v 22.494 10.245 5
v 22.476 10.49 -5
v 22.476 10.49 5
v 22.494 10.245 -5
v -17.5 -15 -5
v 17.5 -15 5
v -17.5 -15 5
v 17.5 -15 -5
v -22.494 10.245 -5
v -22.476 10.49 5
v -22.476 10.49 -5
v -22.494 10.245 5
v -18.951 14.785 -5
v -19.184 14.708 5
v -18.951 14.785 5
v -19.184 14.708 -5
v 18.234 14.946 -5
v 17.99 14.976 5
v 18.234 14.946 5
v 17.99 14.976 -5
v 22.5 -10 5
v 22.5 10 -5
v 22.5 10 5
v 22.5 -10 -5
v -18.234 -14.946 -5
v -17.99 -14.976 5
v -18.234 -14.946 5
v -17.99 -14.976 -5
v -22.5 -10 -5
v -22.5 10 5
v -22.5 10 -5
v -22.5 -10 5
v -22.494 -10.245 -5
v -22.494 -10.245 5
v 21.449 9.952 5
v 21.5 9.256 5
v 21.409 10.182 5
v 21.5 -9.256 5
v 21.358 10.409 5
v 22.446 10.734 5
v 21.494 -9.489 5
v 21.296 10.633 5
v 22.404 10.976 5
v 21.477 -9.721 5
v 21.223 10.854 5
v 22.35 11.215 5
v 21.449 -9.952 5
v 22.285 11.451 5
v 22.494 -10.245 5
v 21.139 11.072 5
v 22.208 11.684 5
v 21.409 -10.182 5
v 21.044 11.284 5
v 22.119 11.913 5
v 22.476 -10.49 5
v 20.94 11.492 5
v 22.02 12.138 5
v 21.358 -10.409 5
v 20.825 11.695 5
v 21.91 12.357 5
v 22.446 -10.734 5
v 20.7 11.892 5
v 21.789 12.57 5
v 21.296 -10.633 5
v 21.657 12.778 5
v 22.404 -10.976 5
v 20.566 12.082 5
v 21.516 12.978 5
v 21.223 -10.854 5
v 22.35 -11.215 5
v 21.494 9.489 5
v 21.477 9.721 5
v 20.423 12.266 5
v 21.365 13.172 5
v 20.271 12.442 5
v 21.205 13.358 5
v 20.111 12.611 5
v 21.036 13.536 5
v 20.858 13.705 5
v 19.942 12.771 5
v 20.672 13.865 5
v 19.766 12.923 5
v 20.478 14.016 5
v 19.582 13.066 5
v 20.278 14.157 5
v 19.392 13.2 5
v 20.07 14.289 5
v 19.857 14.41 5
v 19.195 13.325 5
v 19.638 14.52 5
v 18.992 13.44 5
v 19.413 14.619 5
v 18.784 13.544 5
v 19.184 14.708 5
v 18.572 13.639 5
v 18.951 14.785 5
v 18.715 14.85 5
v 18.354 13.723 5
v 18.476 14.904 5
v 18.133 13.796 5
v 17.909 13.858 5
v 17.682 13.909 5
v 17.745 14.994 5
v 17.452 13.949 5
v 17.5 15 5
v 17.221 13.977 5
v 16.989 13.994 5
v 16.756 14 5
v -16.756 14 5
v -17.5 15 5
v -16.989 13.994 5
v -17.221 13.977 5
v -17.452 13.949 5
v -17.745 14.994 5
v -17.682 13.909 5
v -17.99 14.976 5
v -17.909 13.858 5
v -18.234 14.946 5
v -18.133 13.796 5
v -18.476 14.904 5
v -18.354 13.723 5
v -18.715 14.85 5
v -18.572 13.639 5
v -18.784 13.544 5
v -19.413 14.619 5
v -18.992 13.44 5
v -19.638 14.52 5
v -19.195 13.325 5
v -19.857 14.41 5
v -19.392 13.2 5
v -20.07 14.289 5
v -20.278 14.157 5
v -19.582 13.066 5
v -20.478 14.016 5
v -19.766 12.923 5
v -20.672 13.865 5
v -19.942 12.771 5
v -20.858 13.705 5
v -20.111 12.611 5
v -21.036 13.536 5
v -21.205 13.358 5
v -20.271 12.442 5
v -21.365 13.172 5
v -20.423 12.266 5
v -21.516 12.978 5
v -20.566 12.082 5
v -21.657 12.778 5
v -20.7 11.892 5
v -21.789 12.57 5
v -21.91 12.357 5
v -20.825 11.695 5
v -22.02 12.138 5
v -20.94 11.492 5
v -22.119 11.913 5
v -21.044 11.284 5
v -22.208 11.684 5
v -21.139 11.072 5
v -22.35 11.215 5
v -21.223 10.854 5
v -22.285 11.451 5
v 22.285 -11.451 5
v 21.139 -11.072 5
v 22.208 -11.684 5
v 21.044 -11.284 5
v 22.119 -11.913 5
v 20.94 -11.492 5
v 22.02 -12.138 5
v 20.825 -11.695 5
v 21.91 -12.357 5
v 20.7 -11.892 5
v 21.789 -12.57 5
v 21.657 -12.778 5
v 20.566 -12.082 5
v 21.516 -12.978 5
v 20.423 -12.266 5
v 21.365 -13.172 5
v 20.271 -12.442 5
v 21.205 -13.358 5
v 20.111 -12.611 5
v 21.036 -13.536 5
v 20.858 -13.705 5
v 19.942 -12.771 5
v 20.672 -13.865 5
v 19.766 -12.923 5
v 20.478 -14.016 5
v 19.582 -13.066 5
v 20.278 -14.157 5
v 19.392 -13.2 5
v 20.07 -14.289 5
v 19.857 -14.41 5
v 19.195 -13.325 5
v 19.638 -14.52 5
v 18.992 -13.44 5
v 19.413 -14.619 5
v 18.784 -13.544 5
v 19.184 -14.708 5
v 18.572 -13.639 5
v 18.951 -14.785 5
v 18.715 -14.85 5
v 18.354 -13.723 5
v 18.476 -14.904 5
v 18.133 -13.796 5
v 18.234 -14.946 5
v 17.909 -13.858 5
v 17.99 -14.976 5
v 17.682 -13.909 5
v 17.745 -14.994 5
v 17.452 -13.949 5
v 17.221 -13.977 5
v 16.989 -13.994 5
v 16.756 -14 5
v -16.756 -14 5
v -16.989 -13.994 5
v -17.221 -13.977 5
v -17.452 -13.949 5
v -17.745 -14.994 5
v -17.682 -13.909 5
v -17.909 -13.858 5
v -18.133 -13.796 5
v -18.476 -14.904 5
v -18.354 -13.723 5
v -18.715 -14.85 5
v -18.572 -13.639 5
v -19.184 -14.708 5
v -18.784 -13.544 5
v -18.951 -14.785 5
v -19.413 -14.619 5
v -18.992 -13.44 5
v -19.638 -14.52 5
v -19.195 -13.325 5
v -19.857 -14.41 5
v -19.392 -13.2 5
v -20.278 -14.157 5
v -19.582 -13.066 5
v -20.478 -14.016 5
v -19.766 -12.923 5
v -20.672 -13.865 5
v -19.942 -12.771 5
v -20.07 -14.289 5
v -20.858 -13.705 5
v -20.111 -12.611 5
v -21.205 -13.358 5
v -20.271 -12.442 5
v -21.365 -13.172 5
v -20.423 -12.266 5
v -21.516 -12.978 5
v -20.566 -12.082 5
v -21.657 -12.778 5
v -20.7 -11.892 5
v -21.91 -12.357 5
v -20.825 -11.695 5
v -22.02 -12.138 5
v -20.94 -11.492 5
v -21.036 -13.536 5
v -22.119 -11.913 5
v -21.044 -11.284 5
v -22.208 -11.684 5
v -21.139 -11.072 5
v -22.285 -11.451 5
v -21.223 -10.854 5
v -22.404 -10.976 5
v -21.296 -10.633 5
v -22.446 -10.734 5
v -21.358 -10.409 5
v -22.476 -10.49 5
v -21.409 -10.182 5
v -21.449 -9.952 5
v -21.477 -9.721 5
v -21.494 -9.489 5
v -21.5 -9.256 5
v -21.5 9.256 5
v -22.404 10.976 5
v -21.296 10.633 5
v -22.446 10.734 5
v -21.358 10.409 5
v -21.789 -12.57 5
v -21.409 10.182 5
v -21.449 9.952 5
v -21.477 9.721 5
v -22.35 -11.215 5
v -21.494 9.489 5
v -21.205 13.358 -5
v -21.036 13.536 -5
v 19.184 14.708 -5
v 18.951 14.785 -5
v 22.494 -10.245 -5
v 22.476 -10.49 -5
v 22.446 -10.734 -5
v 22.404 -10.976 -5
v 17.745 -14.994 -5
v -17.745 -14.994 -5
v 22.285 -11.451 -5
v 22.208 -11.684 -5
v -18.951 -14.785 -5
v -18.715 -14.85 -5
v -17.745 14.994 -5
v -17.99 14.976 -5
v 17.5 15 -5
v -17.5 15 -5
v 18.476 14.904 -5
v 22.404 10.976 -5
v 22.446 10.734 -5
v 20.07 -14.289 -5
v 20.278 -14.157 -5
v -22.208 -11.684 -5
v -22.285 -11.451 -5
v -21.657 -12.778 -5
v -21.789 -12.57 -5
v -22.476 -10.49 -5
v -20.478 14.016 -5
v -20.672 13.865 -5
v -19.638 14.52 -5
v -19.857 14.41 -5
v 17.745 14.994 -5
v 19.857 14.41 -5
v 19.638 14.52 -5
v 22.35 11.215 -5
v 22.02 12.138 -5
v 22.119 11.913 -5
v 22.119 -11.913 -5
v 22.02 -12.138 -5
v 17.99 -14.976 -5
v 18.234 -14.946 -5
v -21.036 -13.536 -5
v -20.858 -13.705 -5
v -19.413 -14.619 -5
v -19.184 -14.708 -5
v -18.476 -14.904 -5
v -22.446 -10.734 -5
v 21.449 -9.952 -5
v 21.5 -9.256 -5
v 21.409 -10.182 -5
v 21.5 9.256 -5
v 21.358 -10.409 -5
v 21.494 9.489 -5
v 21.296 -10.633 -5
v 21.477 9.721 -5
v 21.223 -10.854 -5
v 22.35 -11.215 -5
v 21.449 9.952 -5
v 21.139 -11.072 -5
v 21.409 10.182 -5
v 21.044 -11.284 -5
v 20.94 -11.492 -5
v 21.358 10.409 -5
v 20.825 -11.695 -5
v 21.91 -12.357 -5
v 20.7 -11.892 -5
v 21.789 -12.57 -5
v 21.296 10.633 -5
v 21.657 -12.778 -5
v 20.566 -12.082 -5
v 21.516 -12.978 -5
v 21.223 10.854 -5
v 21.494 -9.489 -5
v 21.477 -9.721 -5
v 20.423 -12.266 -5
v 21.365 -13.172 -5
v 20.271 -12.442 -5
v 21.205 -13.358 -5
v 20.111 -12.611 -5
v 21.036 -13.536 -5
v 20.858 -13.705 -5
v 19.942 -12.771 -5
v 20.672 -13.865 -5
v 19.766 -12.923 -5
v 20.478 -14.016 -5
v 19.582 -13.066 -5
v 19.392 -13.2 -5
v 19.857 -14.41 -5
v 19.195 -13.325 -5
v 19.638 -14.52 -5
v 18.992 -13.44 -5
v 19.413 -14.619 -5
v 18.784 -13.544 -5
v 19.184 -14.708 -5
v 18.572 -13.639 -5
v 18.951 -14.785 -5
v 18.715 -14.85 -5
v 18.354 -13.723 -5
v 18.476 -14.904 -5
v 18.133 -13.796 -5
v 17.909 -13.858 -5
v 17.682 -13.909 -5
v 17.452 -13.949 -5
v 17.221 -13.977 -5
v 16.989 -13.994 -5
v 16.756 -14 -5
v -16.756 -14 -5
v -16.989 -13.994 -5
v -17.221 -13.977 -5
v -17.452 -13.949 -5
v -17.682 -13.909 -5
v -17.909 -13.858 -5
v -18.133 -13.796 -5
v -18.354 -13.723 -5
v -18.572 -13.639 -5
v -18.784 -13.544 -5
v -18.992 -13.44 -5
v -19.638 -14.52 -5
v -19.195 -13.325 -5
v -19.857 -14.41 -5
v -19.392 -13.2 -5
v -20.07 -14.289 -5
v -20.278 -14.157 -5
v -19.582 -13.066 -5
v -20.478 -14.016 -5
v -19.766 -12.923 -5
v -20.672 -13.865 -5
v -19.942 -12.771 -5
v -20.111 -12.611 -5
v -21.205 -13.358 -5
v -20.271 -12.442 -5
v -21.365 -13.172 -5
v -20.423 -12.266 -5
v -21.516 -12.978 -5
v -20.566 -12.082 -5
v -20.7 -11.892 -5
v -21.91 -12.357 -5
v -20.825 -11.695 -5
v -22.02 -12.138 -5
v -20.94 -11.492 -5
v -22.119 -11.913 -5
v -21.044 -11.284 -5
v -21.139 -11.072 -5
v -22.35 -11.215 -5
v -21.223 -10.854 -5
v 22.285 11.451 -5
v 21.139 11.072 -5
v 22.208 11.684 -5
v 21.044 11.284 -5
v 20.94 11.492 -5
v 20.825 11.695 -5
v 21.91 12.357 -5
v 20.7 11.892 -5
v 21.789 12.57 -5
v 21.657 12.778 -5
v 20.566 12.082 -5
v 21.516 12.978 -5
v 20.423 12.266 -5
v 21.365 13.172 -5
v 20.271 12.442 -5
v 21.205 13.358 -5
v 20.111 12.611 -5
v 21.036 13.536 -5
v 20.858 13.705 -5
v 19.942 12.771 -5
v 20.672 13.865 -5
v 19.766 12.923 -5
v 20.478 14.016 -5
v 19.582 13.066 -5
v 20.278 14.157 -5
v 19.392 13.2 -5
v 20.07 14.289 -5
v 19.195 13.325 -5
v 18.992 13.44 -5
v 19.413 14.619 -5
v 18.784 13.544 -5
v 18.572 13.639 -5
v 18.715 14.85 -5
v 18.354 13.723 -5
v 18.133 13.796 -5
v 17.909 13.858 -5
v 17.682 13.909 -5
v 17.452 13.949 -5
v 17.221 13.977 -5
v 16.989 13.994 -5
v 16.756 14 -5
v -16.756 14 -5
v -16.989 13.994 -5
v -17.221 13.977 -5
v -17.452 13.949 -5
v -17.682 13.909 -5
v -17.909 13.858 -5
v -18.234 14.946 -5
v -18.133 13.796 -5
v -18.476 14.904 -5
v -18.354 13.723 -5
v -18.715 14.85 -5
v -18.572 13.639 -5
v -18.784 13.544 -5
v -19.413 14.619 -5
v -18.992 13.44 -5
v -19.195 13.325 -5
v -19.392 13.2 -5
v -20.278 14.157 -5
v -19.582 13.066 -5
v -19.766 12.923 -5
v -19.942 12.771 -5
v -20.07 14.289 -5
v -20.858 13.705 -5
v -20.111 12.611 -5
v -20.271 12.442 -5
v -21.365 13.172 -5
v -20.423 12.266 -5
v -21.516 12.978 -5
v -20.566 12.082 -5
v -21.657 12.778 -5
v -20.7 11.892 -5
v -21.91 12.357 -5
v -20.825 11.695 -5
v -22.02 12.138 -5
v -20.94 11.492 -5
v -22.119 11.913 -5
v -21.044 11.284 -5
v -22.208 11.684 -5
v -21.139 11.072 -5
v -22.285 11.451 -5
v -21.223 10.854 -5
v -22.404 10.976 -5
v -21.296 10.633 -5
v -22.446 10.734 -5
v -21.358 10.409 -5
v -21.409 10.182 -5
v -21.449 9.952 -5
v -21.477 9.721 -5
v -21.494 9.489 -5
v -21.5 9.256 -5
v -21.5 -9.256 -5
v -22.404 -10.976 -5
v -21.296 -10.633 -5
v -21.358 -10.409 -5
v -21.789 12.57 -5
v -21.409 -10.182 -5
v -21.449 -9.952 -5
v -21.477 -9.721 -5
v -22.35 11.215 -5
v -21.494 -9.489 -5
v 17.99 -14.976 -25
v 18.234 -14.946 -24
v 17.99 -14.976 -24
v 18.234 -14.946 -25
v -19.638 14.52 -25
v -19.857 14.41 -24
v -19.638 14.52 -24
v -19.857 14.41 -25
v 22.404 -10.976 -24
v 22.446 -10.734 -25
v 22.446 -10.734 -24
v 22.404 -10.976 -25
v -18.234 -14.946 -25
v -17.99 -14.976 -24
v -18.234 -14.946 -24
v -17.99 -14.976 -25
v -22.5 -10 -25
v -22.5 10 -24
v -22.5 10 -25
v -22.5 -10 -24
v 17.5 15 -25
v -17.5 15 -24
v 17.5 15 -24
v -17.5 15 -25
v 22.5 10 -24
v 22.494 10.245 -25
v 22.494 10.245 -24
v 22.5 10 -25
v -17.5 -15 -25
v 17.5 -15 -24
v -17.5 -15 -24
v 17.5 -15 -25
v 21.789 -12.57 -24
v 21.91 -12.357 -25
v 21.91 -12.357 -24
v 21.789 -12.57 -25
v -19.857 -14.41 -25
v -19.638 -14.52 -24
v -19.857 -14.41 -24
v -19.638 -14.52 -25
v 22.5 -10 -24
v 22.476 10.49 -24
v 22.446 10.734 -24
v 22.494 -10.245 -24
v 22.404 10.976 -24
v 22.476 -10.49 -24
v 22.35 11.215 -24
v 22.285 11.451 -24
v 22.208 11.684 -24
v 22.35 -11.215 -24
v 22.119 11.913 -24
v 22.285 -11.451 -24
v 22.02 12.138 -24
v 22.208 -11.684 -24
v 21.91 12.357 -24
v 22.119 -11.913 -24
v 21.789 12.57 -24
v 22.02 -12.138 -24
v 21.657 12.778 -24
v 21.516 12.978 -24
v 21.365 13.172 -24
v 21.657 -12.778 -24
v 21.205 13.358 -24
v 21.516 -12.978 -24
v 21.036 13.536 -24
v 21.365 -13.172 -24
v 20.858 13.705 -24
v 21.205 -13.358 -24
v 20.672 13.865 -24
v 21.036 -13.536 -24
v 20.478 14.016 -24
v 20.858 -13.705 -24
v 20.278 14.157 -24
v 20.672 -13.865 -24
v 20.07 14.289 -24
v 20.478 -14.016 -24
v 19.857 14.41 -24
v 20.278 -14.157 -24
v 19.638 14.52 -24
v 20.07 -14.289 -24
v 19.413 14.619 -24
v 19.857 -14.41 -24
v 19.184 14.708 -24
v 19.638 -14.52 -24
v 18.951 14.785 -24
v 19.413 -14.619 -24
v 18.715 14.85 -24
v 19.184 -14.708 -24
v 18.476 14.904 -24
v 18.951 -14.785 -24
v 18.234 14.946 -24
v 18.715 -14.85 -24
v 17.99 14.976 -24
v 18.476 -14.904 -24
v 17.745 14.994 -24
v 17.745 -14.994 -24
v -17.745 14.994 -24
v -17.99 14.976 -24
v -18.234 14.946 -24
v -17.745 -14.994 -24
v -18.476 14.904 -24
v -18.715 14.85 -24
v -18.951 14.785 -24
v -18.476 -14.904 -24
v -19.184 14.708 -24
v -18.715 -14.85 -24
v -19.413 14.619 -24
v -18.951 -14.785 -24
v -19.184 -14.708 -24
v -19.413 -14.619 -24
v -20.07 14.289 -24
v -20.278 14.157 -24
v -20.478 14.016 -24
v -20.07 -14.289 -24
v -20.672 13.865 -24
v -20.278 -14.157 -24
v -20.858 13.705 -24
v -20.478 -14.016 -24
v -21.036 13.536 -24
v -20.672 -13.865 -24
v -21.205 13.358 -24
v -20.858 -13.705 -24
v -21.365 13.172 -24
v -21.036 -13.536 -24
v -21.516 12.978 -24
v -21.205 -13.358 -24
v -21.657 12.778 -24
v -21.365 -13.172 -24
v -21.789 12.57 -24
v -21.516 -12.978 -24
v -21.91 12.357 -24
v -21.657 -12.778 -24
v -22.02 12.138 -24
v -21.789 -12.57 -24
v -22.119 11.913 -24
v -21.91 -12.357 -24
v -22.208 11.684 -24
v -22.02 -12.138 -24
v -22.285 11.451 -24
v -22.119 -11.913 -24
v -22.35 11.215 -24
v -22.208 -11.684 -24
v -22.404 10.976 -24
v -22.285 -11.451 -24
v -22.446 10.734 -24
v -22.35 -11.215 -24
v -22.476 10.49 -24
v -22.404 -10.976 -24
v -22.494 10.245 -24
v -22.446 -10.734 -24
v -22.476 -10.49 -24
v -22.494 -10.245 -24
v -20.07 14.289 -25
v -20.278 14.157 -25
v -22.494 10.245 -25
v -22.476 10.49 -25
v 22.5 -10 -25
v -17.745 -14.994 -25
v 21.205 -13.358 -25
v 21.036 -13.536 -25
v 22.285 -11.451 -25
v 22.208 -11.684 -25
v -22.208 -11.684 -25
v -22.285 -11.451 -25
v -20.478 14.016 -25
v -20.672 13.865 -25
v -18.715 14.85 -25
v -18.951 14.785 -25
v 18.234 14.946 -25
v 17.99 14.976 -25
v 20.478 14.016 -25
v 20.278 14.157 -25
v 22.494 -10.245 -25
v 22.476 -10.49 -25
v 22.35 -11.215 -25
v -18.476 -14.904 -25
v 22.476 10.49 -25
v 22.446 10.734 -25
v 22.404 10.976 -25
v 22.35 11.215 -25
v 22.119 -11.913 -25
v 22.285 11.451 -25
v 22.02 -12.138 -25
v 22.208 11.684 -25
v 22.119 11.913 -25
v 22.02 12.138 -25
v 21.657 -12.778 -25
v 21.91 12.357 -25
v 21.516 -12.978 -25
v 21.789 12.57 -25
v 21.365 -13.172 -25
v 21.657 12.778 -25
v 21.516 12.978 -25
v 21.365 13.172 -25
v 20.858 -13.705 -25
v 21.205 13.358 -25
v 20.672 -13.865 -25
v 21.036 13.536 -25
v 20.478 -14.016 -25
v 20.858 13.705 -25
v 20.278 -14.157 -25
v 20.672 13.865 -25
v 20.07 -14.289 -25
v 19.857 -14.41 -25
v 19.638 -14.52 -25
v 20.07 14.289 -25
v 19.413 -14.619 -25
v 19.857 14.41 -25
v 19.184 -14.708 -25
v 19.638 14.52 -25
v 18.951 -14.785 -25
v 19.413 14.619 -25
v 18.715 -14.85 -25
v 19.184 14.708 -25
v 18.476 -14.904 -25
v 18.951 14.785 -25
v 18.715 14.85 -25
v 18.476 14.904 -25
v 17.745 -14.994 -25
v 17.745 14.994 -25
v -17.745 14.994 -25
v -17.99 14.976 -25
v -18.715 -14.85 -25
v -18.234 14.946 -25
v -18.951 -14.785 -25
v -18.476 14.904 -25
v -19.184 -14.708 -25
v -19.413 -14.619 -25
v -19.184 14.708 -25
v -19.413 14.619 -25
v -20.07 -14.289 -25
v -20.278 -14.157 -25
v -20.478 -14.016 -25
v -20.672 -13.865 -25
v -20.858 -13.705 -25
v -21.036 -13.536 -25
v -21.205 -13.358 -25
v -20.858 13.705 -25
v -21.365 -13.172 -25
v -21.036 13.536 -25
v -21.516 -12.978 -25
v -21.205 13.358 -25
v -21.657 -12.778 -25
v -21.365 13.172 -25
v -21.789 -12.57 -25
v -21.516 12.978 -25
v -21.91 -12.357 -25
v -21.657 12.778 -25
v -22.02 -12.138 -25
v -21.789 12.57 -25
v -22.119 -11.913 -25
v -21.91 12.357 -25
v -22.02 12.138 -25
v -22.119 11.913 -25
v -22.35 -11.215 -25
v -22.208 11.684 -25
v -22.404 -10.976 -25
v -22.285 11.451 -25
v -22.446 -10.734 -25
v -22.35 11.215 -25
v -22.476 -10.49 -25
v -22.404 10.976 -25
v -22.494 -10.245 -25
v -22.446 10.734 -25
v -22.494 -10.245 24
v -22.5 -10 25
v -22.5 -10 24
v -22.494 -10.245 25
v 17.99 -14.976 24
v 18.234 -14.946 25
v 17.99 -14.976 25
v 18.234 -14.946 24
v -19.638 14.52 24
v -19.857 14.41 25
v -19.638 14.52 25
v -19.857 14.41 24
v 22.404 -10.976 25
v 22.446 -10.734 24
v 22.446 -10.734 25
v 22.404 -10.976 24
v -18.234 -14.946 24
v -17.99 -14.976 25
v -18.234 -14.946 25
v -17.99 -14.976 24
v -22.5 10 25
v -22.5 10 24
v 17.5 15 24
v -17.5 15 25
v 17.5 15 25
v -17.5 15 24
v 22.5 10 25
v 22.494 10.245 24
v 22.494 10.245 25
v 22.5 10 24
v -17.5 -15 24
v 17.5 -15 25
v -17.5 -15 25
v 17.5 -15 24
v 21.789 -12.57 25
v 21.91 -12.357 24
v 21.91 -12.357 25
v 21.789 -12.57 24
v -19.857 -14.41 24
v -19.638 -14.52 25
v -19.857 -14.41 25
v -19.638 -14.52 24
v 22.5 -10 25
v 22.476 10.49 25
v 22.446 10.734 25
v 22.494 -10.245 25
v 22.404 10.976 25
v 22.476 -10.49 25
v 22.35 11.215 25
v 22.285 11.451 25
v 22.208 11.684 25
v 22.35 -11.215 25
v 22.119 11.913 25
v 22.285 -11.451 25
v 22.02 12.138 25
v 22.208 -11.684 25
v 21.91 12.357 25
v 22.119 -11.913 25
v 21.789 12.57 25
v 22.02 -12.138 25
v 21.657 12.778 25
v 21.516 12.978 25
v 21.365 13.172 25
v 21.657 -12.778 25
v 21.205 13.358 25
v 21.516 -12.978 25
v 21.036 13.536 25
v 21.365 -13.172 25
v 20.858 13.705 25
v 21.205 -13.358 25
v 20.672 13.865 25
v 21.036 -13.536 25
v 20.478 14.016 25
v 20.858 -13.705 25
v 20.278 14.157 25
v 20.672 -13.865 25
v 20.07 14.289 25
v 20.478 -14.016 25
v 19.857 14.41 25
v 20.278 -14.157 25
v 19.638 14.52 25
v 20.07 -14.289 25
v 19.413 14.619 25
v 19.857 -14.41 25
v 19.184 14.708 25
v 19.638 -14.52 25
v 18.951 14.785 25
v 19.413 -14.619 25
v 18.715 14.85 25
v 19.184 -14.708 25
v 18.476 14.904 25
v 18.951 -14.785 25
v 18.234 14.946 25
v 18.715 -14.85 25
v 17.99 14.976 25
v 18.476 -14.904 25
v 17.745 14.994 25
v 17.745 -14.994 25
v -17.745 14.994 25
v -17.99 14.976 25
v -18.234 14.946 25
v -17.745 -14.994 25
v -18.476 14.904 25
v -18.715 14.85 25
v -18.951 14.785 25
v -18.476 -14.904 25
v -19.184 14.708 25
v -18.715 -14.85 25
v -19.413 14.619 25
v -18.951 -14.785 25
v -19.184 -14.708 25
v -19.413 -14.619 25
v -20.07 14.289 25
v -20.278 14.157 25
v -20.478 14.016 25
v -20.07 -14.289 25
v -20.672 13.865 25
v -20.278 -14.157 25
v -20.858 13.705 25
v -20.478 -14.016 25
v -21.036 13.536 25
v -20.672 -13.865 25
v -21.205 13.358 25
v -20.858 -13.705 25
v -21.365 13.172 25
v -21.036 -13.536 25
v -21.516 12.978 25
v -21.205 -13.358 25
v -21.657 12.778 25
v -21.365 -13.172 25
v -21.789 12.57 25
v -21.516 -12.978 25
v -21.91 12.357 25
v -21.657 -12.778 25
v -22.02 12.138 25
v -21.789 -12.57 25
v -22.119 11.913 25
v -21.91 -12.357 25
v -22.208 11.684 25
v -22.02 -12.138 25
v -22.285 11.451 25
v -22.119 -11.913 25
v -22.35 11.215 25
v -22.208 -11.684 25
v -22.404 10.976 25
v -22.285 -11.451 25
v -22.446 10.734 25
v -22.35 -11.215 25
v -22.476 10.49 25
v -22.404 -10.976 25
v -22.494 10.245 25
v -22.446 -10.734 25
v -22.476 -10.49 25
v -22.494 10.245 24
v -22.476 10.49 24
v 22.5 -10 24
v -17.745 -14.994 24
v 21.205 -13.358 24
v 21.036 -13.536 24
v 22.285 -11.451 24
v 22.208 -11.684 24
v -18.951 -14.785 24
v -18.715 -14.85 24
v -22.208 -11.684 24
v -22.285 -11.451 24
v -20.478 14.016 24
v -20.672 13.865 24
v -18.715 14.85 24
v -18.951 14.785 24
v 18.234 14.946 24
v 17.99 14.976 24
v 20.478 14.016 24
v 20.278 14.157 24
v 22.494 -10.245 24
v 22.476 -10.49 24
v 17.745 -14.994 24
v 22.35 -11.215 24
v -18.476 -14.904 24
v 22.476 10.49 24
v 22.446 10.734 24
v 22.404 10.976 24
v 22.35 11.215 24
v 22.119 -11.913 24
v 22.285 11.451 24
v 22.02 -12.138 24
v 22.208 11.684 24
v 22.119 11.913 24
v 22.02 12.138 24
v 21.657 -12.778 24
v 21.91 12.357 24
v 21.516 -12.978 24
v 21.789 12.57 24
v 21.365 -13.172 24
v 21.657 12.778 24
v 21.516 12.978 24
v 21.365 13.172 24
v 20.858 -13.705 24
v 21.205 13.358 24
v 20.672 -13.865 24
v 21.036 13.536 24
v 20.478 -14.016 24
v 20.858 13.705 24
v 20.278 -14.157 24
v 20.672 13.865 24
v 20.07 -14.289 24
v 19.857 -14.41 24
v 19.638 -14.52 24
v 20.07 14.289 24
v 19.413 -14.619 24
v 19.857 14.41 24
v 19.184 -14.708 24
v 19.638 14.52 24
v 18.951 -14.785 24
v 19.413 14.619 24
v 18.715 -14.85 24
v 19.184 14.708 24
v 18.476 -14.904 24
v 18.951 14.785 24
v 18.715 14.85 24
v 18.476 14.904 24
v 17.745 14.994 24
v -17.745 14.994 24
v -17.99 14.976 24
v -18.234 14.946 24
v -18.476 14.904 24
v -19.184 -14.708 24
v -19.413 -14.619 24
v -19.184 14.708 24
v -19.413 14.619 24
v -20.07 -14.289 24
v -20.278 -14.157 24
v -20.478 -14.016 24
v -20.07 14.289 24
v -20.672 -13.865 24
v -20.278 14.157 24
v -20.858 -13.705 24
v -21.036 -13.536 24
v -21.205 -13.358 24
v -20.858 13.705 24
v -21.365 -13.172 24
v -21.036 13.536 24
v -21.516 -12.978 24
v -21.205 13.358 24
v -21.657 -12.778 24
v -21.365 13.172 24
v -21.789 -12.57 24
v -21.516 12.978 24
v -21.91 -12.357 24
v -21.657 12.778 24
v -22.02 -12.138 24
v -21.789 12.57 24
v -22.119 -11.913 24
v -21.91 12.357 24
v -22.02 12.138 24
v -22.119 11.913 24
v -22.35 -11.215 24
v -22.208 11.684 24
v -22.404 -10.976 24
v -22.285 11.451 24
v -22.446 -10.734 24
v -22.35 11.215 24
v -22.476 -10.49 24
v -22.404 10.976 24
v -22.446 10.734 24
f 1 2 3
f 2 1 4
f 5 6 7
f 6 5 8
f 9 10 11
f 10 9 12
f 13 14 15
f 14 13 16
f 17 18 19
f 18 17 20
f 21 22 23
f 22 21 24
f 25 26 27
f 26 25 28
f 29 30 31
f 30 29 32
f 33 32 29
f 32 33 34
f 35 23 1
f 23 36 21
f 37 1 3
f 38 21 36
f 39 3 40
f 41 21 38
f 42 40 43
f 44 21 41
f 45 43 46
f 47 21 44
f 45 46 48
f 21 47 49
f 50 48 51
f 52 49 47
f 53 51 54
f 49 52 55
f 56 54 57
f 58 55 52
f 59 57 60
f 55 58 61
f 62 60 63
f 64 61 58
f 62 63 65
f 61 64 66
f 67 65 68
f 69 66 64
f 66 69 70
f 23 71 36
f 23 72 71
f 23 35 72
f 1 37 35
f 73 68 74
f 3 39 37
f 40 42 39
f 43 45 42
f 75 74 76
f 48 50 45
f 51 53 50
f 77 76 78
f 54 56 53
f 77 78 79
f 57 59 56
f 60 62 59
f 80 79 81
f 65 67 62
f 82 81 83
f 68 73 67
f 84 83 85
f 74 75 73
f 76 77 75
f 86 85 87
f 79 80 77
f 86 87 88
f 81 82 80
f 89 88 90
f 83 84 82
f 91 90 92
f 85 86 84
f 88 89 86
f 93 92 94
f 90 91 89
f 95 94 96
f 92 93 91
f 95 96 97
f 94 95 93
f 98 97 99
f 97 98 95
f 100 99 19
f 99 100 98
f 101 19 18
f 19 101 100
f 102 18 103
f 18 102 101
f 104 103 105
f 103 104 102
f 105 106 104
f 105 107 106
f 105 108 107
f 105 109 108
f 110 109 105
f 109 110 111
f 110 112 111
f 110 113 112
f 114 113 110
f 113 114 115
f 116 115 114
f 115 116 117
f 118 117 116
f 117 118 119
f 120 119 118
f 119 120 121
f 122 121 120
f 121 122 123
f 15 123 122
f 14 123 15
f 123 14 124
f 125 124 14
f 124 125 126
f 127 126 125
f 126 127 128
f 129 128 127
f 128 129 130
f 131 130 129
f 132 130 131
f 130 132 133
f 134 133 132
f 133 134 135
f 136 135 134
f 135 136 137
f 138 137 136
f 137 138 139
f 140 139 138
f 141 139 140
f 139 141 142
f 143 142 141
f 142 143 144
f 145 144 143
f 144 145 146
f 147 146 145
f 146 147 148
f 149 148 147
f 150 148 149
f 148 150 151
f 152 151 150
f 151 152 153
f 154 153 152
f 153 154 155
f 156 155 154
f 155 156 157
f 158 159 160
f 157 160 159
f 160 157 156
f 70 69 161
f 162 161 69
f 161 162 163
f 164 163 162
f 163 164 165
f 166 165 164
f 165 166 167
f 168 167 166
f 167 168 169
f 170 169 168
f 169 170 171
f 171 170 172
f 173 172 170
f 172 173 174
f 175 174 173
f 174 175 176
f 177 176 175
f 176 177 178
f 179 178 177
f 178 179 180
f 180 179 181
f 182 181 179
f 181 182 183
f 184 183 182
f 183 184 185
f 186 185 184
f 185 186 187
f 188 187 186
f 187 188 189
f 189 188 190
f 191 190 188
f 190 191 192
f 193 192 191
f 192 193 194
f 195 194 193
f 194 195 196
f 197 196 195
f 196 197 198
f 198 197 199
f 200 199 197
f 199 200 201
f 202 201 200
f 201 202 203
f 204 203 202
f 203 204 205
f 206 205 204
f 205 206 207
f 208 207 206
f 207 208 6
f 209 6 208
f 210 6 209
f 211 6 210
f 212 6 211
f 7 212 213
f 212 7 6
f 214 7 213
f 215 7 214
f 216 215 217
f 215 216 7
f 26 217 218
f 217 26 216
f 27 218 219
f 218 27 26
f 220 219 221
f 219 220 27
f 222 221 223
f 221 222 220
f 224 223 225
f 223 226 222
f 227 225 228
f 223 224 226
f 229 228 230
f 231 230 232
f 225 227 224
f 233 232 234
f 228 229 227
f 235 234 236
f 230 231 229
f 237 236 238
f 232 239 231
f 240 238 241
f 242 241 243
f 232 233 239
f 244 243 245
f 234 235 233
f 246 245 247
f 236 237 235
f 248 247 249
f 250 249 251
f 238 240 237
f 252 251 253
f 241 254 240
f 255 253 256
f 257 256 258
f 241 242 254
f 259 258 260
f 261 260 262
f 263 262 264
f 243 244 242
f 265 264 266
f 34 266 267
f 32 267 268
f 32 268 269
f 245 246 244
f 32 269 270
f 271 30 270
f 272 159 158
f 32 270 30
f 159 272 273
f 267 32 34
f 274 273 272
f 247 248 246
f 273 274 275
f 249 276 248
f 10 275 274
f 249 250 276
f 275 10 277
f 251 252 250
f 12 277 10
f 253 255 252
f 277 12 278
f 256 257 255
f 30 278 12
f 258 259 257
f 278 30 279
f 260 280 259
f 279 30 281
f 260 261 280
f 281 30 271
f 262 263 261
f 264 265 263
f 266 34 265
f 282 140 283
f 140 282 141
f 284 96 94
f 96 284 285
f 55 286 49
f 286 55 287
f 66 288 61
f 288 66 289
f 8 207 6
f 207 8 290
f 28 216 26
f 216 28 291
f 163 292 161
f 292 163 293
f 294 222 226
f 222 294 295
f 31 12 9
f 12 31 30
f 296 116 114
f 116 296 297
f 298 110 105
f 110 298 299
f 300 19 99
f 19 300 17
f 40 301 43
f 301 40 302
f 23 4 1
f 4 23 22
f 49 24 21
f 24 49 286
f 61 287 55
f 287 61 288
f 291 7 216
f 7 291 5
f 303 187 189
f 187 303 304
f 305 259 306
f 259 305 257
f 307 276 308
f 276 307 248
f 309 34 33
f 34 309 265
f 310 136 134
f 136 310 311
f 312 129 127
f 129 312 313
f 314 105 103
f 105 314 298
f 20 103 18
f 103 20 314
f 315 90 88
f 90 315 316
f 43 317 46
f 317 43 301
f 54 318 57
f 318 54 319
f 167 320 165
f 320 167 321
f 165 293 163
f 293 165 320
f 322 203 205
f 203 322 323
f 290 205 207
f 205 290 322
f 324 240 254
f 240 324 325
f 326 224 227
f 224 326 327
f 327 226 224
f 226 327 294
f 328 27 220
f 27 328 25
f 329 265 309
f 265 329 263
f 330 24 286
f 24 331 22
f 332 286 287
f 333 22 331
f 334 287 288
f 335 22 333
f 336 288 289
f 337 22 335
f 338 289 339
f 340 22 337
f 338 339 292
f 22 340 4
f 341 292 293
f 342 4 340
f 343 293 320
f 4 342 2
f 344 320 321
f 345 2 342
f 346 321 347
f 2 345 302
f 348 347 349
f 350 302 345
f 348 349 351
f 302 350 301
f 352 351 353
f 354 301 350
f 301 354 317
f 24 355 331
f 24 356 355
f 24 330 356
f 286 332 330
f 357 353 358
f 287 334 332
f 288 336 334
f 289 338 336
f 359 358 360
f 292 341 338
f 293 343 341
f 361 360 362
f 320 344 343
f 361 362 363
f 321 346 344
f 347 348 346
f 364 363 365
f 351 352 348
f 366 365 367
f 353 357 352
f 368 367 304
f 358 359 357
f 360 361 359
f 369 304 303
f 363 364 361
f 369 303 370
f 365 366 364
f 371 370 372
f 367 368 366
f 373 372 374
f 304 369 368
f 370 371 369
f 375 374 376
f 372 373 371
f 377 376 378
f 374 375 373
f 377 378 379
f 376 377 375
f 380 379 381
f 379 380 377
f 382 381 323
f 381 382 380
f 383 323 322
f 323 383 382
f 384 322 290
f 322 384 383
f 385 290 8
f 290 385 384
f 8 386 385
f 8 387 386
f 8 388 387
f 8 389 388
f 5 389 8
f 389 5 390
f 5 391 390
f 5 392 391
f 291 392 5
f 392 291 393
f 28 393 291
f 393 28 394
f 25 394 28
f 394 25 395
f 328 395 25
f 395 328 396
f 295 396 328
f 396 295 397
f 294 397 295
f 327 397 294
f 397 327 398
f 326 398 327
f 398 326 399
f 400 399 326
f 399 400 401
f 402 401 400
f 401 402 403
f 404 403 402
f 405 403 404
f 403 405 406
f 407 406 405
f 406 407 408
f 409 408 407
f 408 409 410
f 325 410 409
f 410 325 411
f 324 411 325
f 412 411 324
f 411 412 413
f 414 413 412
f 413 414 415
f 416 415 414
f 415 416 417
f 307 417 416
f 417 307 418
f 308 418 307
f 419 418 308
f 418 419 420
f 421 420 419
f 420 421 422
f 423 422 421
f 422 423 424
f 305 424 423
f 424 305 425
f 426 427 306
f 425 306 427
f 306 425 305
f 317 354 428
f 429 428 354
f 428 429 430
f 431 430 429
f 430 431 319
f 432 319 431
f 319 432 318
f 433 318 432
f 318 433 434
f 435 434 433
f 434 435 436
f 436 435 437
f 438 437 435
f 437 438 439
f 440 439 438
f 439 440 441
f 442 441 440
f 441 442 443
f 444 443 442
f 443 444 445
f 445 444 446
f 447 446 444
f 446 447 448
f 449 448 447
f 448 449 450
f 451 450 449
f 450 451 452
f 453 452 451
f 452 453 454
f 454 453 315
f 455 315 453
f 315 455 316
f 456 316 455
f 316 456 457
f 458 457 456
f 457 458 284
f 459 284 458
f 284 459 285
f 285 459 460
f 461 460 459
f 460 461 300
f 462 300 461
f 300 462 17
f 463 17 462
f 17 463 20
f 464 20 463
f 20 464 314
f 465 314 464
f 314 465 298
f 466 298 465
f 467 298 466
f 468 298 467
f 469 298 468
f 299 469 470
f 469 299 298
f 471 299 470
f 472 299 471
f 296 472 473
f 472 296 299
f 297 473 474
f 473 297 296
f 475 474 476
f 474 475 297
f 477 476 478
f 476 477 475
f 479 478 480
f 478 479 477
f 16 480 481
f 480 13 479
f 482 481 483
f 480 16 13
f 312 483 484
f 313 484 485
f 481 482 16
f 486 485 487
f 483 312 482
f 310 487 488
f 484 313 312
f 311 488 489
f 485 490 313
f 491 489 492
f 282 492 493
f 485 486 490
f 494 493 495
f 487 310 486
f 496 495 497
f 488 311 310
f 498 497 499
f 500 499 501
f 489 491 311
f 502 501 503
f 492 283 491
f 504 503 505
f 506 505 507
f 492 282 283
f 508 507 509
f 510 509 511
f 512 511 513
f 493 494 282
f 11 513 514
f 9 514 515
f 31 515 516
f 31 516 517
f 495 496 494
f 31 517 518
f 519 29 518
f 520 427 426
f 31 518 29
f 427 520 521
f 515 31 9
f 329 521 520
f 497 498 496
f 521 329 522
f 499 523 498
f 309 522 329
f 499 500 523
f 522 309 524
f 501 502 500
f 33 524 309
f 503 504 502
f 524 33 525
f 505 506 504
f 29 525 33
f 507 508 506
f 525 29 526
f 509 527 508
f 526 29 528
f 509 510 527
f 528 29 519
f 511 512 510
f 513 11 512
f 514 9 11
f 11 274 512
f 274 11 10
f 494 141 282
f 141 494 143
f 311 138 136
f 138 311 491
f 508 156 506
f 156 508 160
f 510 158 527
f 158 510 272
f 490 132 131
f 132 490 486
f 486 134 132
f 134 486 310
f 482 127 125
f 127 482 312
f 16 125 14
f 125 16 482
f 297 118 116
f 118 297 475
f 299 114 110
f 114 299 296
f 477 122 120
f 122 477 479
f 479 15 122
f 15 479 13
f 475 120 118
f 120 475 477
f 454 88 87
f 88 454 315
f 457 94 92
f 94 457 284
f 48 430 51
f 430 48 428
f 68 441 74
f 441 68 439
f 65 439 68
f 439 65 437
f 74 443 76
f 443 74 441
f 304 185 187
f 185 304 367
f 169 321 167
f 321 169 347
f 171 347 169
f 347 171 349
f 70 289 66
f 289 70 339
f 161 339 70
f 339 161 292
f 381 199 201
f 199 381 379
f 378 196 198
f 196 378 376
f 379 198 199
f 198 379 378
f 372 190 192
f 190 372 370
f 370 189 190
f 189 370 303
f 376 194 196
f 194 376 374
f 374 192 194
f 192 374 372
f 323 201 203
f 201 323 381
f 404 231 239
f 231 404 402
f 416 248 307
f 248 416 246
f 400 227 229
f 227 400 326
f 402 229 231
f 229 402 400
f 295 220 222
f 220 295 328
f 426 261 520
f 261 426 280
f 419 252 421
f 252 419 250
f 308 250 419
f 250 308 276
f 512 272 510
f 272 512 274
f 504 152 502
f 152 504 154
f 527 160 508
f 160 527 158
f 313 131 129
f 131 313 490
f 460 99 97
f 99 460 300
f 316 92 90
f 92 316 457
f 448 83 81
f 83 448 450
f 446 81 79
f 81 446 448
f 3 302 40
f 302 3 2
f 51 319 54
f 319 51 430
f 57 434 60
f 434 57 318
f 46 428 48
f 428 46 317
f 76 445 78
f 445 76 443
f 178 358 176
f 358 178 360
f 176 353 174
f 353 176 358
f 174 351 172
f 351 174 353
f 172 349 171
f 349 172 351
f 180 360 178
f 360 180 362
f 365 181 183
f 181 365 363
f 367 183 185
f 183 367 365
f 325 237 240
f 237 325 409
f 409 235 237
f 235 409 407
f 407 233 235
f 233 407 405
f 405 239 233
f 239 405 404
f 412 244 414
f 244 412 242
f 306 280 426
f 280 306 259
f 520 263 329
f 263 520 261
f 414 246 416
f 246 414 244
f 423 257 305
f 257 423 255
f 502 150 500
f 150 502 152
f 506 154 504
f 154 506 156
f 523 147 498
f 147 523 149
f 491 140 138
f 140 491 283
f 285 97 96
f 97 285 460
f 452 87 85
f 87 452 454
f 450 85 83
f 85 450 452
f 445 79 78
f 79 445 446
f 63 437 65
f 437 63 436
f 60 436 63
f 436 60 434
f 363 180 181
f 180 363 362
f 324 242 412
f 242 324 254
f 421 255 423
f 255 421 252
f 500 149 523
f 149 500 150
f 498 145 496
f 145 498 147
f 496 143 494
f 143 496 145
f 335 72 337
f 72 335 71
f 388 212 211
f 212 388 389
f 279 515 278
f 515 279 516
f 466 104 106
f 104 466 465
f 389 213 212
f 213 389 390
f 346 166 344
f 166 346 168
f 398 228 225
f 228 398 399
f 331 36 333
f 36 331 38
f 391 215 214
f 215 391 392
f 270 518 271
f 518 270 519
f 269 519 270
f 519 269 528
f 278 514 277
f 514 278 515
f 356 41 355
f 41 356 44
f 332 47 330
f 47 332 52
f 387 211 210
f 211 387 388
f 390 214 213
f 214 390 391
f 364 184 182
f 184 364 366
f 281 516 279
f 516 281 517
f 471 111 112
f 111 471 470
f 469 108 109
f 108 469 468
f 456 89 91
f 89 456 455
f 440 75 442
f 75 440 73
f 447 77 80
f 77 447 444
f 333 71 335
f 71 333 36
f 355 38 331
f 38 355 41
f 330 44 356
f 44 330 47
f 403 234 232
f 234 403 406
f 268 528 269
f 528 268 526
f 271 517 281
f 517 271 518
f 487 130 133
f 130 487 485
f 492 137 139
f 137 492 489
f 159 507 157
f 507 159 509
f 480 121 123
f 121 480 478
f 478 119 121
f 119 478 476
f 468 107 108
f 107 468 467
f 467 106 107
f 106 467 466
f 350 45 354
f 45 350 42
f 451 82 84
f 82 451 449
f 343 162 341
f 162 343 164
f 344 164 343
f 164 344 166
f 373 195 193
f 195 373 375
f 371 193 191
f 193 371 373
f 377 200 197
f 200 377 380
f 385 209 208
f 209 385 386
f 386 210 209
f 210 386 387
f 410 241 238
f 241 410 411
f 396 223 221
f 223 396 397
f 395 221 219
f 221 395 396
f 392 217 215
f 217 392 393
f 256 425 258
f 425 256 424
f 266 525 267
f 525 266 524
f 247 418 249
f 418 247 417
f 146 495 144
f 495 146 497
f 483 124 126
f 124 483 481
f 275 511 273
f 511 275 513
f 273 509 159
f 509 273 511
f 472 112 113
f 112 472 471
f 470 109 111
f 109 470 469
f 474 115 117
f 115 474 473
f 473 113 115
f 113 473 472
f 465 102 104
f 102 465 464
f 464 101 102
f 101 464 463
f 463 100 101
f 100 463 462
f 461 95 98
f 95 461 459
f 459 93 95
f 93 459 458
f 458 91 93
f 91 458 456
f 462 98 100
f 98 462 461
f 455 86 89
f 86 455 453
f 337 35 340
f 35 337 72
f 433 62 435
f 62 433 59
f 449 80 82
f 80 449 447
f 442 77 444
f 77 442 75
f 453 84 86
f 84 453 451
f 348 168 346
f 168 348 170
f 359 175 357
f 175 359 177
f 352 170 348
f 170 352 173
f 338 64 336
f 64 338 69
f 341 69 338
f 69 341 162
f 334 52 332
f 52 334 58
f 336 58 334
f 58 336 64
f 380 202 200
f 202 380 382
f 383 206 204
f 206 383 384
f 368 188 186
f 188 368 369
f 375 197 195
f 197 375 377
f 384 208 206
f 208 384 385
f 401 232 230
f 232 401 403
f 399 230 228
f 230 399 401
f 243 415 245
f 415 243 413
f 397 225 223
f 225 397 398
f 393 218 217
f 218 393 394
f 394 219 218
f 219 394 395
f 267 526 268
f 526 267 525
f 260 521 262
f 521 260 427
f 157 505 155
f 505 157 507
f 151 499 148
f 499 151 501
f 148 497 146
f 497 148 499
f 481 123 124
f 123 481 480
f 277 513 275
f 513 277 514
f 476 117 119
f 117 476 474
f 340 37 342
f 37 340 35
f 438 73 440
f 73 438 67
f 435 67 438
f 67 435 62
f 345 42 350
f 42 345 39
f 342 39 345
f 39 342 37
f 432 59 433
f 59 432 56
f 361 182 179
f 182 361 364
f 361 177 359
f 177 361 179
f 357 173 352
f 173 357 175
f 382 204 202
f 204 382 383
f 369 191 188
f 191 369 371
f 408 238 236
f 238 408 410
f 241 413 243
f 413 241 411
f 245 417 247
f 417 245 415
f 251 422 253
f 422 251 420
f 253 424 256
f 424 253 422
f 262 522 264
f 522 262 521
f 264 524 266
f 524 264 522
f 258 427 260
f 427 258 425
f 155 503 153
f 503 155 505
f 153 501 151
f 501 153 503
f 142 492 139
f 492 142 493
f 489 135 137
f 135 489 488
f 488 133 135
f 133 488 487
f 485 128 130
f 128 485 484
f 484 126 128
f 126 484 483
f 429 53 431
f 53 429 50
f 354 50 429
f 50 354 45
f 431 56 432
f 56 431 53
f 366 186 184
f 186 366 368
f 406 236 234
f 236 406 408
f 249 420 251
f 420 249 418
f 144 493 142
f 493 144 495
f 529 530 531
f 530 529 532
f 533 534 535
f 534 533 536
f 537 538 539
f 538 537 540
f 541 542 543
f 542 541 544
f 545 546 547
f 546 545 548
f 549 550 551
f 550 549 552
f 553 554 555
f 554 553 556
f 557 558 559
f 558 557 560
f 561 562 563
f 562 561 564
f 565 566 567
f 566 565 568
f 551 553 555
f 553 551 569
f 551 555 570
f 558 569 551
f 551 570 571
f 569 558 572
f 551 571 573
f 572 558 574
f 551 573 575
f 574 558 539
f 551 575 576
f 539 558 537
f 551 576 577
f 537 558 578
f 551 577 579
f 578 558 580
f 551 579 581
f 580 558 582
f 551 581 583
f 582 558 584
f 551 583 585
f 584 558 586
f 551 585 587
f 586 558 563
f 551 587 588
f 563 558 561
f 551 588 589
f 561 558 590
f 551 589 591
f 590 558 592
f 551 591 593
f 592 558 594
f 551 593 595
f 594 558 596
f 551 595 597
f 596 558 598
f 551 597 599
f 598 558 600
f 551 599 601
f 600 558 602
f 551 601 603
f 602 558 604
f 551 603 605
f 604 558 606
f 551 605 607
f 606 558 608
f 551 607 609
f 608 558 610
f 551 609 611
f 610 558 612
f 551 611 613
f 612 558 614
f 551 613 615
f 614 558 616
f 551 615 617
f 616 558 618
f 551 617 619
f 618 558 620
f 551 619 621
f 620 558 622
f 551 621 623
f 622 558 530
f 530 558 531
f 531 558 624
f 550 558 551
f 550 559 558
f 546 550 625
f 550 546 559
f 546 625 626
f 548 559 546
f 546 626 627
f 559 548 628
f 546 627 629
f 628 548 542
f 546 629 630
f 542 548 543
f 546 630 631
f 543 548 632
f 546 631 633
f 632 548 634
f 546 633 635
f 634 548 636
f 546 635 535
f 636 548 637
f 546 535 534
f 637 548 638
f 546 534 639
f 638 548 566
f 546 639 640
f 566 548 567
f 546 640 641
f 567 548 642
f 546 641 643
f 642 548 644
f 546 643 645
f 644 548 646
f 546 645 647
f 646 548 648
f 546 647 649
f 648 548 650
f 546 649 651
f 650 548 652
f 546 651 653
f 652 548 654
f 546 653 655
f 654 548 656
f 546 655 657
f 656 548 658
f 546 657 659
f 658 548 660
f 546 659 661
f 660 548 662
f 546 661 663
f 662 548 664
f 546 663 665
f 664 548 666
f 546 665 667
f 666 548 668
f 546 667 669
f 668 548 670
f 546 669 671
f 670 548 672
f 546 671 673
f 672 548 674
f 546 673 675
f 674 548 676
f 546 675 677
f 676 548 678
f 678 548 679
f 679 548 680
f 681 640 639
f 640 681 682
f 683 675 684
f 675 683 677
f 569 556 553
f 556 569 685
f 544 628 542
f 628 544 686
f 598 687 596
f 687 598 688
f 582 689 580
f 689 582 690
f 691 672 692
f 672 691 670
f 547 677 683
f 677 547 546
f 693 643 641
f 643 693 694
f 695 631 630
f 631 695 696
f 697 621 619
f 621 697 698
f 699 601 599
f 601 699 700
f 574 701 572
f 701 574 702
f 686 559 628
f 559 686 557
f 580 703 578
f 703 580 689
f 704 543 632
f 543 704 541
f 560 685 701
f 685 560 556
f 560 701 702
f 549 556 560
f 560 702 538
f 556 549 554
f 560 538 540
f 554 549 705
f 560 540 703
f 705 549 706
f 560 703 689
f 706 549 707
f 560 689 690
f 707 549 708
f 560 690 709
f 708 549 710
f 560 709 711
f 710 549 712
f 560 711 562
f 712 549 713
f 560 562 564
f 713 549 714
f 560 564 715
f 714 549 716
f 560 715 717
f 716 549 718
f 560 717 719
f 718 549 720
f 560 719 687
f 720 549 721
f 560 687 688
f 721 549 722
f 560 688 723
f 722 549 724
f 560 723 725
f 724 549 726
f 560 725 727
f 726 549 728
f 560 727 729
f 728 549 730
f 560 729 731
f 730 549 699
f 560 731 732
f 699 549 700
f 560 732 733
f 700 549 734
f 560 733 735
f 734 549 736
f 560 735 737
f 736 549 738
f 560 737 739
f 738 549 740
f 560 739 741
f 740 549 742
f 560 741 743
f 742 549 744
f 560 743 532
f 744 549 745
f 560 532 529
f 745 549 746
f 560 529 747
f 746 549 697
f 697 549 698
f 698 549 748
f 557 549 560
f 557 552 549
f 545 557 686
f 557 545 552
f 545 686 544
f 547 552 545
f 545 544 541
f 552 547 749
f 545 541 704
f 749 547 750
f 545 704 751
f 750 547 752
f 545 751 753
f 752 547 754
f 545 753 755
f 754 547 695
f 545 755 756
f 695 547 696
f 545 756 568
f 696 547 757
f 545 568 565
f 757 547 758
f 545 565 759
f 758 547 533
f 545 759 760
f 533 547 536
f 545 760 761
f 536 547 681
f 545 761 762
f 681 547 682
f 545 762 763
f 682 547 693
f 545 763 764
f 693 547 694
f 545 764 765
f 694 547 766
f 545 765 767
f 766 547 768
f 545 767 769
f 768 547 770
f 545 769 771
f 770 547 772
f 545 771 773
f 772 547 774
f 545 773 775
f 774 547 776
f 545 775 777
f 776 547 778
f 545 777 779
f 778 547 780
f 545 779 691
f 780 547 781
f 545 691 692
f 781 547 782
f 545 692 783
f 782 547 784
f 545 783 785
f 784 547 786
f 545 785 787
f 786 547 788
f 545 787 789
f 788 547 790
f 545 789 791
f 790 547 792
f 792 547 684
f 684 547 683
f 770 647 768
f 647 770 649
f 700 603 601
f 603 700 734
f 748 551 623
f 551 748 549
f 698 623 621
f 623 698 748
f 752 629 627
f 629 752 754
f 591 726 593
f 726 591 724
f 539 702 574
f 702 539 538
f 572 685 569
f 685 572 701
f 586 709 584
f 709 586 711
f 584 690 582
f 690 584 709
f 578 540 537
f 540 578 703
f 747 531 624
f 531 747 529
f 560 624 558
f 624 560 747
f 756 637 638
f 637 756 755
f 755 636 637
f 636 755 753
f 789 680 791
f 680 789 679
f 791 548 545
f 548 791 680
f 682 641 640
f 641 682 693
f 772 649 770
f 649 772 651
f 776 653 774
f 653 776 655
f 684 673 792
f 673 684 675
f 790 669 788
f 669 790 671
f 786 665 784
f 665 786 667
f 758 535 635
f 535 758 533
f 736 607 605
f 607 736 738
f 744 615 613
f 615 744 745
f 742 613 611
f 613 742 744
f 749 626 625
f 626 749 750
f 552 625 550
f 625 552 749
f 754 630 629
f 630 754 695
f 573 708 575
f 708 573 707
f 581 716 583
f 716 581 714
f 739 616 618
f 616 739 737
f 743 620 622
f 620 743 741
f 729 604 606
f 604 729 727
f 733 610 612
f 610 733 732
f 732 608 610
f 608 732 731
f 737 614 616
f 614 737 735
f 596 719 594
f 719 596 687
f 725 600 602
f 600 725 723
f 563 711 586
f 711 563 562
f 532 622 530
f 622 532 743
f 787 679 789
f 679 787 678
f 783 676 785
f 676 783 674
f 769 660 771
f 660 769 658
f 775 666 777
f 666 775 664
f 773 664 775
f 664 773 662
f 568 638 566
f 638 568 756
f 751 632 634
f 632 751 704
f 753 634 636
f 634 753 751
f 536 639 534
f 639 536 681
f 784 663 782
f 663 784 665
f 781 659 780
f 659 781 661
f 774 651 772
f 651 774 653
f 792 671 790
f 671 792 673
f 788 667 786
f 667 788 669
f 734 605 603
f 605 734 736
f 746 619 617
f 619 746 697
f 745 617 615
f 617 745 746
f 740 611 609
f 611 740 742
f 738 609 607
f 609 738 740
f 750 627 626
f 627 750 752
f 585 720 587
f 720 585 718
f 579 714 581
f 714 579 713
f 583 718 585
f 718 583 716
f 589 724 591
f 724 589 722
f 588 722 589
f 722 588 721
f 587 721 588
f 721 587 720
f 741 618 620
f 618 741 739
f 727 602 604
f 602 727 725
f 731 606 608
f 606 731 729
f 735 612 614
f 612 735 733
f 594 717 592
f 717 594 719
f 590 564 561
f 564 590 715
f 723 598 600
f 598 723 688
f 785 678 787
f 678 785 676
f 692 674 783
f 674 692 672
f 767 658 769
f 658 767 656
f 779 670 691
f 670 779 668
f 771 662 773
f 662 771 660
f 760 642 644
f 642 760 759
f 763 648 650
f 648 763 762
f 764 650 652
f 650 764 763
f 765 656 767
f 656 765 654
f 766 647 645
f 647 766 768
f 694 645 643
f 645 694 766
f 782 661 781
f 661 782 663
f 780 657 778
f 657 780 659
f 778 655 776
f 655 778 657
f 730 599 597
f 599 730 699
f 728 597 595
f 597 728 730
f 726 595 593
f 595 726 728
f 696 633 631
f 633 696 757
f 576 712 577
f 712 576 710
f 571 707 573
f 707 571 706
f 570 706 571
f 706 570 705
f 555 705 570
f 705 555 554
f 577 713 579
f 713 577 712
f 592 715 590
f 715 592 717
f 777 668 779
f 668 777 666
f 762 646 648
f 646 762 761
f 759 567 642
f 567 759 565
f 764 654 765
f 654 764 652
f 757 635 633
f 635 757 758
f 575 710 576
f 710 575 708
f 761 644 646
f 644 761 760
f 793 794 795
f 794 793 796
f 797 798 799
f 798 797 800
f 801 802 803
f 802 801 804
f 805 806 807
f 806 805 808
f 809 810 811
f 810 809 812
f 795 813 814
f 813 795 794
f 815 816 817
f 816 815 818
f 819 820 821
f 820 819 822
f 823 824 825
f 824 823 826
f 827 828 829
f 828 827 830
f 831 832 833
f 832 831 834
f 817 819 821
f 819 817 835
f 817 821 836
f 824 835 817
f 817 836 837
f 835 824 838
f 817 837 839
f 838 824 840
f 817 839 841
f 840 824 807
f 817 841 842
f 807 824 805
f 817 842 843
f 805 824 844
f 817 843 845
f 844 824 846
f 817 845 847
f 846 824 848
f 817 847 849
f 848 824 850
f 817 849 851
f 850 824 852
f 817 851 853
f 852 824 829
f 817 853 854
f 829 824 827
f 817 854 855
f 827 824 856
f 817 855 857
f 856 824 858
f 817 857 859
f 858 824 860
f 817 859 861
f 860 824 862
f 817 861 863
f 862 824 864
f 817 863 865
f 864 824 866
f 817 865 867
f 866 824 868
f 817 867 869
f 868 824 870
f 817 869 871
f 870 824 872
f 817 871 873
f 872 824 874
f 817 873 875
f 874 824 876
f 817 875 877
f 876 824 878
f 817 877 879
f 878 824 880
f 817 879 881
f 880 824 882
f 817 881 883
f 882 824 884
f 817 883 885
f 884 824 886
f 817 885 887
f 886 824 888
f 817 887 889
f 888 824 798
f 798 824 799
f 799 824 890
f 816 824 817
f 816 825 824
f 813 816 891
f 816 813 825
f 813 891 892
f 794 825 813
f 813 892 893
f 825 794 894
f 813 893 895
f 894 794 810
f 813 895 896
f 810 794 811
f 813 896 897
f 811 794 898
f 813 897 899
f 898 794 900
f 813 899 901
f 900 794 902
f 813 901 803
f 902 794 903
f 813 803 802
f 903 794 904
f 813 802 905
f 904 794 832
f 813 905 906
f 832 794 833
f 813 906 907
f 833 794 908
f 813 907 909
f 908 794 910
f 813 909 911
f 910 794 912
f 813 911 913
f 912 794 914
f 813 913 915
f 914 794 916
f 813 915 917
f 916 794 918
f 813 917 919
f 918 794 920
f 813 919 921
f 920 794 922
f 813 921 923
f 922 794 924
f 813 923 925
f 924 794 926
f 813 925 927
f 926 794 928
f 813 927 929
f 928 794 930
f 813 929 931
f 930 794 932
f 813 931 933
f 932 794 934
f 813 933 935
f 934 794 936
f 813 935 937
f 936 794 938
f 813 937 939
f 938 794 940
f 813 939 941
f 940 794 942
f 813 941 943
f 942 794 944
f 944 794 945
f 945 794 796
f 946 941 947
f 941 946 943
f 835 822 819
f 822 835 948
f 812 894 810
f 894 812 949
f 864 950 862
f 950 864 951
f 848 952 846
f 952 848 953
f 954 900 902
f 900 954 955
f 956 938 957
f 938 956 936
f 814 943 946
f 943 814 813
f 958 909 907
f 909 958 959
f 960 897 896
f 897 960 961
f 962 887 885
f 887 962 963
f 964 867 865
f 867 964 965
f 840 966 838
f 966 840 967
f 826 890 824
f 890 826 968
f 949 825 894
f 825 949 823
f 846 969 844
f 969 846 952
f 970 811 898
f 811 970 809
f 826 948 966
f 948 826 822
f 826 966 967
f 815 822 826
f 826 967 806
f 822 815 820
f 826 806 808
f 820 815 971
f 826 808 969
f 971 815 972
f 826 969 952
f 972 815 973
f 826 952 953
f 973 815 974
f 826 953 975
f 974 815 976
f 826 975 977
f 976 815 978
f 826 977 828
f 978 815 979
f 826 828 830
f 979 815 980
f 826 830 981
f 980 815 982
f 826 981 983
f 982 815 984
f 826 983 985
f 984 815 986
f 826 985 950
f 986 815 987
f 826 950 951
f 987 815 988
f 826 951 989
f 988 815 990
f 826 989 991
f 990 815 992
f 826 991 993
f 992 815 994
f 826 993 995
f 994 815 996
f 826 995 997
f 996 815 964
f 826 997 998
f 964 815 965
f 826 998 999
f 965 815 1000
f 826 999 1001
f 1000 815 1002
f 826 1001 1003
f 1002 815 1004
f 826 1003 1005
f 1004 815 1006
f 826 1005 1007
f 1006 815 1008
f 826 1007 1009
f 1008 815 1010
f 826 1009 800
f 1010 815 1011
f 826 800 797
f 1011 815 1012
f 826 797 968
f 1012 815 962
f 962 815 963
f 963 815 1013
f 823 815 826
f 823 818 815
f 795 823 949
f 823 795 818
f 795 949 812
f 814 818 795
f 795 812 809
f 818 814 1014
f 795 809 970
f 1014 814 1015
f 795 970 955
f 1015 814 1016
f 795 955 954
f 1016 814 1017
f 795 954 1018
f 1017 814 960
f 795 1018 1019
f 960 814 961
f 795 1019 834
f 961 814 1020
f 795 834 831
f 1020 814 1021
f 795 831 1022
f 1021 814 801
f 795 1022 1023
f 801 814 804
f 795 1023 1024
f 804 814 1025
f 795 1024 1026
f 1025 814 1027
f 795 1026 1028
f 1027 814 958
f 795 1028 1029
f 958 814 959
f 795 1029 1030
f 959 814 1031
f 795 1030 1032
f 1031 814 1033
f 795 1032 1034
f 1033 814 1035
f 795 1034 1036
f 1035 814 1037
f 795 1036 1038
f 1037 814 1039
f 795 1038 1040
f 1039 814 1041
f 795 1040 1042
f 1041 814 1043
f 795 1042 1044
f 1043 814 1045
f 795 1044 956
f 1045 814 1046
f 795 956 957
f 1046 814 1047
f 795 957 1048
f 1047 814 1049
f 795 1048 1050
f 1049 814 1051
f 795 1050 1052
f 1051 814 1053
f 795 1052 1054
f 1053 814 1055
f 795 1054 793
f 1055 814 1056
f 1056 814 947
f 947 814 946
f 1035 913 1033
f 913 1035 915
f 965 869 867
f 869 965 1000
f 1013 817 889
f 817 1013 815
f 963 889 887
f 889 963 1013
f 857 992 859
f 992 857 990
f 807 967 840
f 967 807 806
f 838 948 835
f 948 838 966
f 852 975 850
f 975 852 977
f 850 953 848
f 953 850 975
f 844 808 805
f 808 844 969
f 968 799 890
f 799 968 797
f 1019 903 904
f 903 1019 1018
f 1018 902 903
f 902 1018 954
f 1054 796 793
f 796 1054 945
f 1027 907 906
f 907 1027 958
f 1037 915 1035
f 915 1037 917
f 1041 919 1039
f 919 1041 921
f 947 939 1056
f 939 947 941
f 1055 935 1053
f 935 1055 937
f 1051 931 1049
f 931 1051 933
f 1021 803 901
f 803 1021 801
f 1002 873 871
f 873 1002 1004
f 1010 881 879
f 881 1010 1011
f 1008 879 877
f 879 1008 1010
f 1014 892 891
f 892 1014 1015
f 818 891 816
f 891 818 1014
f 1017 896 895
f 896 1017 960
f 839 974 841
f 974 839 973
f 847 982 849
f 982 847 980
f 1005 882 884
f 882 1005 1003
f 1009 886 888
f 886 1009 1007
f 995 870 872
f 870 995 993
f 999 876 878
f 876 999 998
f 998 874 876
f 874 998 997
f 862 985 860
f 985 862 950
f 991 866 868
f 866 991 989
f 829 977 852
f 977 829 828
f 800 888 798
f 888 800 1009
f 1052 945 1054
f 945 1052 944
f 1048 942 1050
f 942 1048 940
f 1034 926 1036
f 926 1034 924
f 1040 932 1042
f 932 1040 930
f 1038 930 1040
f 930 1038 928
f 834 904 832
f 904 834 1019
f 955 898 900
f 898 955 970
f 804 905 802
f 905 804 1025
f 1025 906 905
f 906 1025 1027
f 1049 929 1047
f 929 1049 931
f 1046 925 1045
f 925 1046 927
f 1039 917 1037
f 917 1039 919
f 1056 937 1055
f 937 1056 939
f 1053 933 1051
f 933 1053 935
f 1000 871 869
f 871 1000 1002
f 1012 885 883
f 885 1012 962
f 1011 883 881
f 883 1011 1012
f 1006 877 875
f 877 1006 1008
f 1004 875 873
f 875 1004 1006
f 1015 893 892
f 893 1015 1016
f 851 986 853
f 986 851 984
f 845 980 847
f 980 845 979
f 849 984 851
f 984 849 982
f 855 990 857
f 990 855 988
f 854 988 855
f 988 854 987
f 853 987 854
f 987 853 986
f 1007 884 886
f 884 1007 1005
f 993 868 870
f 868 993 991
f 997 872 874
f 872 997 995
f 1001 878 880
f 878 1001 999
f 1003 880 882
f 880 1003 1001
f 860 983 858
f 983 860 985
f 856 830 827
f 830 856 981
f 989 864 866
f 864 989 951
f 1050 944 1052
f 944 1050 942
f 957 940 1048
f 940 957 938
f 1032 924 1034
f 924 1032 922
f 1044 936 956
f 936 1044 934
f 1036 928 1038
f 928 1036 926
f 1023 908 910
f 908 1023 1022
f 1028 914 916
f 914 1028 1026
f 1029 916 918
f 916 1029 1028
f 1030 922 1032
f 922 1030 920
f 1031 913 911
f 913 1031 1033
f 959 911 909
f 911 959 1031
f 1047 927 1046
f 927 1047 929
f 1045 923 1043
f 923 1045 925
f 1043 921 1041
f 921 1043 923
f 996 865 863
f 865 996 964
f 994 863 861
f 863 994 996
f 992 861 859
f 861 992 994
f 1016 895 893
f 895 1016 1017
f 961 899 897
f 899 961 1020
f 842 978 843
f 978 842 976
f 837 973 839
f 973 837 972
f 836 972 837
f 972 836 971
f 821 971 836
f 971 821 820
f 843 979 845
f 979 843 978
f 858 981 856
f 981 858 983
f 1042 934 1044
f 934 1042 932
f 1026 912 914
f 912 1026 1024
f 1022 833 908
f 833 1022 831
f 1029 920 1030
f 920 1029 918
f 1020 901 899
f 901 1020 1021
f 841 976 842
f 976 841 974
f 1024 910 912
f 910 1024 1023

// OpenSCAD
DOCK_BODY_DEPTH = 10;
DOCK_BODY_HEIGHT = 30;
DOCK_BODY_WIDTH = 45;

DOCK_BACK_THICKNESS = 1;

DOCK_WALL_THICKNESS = 2;

CORNER_CURVE_DIAMETER = 10;

EXPLODE_OFFSET = 20;

$fn = 128;
dock_rim(DOCK_BODY_WIDTH, DOCK_BODY_HEIGHT, DOCK_BODY_DEPTH, DOCK_WALL_THICKNESS, CORNER_CURVE_DIAMETER);
translate([0,0,(-DOCK_BODY_DEPTH+DOCK_BACK_THICKNESS)/2- EXPLODE_OFFSET])
dock_back_wall(DOCK_BODY_WIDTH, DOCK_BODY_HEIGHT,  DOCK_BACK_THICKNESS, CORNER_CURVE_DIAMETER);

translate([0,0,(+DOCK_BODY_DEPTH-DOCK_BACK_THICKNESS)/2 + EXPLODE_OFFSET ])
dock_front_wall(DOCK_BODY_WIDTH, DOCK_BODY_HEIGHT,  DOCK_BACK_THICKNESS, CORNER_CURVE_DIAMETER);

module dock_body(width, height, depth, corner_curve_diameter) {
    x_translate = width-corner_curve_diameter;
    y_translate = height-corner_curve_diameter;
    
    hull(){
        translate([-x_translate/2, -y_translate/2, 0])
        cylinder(depth,corner_curve_diameter/2, corner_curve_diameter/2, true);    
        
        translate([-x_translate/2, y_translate/2, 0])
        cylinder(depth,corner_curve_diameter/2, corner_curve_diameter/2, true);

        translate([x_translate/2, y_translate/2, 0])
        cylinder(depth,corner_curve_diameter/2, corner_curve_diameter/2, true);        
        
        translate([x_translate/2, -y_translate/2, 0])
        cylinder(depth,corner_curve_diameter/2, corner_curve_diameter/2, true);        
    }
}

module dock_back_wall(width, height, depth, corner_curve_diameter){
    x_translate = width-corner_curve_diameter;
    y_translate = height-corner_curve_diameter;
        
    
   hull(){
        translate([-x_translate/2, -y_translate/2, 0])
        cylinder(depth,corner_curve_diameter/2, corner_curve_diameter/2, true);    
        
        translate([-x_translate/2, y_translate/2, 0])
        cylinder(depth,corner_curve_diameter/2, corner_curve_diameter/2, true);

        translate([x_translate/2, y_translate/2, 0])
        cylinder(depth,corner_curve_diameter/2, corner_curve_diameter/2, true);        
        
        translate([x_translate/2, -y_translate/2, 0])
        cylinder(depth,corner_curve_diameter/2, corner_curve_diameter/2, true);        
    }    
}

module dock_front_wall(width, height, depth, corner_curve_diameter){
    dock_back_wall(width, height, depth, corner_curve_diameter);
}

module dock_rim(width, height, depth, wall_thickness, corner_curve_diameter) {
    
    curve_ratio = sqrt(pow(width-wall_thickness,2) + pow(height-wall_thickness,2)) / sqrt(pow(width,2) + pow(height,2));
    
    scaled_curve = corner_curve_diameter * curve_ratio;
    
    difference(){
        dock_body(width, height, depth, corner_curve_diameter);
        dock_body(width-wall_thickness, height-wall_thickness, 2*depth, scaled_curve);
    };
}
